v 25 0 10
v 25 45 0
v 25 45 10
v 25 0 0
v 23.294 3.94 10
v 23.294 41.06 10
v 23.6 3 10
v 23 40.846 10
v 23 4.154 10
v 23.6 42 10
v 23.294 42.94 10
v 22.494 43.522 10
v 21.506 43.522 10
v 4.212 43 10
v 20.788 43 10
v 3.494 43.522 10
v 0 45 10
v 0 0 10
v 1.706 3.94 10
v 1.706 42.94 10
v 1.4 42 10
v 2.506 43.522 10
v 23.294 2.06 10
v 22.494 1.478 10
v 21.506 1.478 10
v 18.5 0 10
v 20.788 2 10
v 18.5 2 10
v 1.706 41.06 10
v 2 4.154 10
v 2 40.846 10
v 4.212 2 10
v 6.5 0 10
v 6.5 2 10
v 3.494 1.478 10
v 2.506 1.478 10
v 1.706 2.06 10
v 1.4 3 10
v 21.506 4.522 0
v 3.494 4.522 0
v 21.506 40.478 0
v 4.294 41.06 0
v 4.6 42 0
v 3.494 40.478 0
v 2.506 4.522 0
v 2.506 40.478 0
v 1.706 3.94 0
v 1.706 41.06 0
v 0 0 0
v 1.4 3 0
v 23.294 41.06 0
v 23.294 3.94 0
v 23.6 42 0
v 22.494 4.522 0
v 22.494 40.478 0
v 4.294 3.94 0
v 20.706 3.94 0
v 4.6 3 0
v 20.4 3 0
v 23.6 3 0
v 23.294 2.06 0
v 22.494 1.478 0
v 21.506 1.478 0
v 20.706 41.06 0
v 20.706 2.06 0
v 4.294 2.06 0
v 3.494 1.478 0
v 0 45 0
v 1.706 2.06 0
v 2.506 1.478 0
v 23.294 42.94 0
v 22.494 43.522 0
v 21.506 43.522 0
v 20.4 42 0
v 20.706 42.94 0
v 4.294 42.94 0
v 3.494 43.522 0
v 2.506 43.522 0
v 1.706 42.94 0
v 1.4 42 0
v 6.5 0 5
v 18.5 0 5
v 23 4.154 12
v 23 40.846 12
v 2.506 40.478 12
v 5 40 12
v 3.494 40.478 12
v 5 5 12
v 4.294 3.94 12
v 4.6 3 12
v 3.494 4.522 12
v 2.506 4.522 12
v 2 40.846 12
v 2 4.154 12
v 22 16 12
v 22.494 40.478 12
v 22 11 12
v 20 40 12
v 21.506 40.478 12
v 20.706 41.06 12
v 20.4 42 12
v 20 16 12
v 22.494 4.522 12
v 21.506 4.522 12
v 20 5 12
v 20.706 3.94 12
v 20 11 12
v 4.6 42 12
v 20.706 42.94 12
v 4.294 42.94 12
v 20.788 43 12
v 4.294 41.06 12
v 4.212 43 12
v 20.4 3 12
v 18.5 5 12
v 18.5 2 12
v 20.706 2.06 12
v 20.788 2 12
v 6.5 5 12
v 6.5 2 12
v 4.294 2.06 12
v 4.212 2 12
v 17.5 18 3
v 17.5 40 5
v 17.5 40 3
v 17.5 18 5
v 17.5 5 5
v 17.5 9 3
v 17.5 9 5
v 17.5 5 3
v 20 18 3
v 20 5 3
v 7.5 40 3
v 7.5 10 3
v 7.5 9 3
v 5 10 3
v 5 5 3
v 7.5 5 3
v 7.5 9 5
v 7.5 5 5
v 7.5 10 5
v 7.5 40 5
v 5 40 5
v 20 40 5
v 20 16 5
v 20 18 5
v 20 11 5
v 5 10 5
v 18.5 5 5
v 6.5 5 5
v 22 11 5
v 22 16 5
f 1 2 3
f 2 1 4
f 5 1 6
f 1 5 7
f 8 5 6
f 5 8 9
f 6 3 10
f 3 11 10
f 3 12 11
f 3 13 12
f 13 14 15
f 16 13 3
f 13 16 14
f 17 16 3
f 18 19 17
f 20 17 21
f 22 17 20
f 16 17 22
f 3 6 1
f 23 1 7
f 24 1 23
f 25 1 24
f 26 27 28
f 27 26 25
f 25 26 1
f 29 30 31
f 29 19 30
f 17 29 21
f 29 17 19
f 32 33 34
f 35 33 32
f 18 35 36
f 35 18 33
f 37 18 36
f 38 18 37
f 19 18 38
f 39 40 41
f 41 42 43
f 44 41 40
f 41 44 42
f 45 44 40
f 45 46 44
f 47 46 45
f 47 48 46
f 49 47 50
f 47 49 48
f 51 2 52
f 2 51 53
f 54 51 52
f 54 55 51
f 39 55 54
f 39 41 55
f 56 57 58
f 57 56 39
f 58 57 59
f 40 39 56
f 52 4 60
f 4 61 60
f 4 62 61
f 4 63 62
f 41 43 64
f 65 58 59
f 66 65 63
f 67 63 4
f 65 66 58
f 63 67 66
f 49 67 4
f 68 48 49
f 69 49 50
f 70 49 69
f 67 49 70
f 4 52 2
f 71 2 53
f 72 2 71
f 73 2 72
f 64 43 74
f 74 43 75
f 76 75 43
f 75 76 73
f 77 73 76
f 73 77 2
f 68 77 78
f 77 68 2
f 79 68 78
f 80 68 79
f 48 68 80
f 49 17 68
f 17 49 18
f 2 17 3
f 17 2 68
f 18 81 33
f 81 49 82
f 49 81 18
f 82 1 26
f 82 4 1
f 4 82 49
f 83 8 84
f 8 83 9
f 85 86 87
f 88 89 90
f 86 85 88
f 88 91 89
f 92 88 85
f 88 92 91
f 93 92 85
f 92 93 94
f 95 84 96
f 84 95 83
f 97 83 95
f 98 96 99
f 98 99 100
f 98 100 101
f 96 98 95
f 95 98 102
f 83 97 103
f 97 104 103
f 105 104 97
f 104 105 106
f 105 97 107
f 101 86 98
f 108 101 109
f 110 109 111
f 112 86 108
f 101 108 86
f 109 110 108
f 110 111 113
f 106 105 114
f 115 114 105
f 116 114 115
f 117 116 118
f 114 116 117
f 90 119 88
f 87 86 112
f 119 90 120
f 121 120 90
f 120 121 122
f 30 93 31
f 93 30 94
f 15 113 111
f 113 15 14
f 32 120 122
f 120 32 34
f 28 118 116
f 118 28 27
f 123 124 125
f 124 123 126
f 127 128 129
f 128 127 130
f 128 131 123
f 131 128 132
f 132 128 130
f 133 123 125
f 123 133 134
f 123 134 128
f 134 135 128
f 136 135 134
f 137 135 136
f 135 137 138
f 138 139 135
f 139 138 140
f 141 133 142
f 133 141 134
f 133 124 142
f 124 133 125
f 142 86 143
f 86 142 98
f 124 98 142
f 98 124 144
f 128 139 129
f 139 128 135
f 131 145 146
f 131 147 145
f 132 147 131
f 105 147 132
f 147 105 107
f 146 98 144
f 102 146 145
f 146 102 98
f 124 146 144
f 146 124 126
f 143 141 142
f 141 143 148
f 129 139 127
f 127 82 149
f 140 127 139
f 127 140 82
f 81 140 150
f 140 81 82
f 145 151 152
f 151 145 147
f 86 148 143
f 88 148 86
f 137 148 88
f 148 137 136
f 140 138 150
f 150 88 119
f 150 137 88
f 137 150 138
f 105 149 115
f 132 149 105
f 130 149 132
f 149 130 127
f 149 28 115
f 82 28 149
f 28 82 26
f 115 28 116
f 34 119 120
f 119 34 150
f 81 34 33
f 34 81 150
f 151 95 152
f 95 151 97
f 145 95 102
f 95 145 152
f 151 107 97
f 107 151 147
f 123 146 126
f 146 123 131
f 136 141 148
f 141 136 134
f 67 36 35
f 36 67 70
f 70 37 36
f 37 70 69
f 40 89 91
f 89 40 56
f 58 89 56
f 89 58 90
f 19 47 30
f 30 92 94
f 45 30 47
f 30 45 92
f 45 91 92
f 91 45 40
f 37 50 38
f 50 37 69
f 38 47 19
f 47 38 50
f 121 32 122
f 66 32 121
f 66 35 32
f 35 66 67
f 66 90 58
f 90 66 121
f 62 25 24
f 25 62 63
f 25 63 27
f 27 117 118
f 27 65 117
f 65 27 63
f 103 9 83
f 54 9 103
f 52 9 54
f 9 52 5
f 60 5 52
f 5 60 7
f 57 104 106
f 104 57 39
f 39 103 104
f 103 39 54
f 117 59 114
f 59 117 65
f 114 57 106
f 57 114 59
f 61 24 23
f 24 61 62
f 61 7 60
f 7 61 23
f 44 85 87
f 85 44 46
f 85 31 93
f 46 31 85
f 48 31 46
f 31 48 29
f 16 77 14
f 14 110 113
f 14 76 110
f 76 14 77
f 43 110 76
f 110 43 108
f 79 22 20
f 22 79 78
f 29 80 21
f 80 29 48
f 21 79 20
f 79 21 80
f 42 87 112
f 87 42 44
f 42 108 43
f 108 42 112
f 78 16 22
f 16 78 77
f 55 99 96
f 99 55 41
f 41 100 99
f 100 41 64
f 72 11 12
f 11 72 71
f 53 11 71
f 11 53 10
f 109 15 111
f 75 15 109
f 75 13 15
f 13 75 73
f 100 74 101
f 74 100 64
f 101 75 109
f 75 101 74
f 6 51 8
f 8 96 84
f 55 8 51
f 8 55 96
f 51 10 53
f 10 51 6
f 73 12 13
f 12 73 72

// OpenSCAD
$fn = 10;

width = 25;
length = 45;
lip = 2;
height = 10;
wall = 5;
hole_d = 3.2;
hole_h = height + lip;

difference() {
    union() {
        cube([width, length, height], false);
        translate([lip, lip, height])
            cube([width - 2 * lip , length - 2 * lip, lip], false);
    }
    translate([wall + 2.5, wall + 4, 3])
        cube([10, 31, height], false);
    translate([wall, wall, 3 + 2])
        cube([width - 2 * wall, length - 2 * wall, height], false);
    // USB
    translate([wall + 1.5, 0, 3 + 2])
        cube([12, wall, 5 + lip], false);
    // reset
    translate([width - wall, 11, 3 + 2])
        cube([2, 5, height], false);
    // pins
    translate([wall + 2.5 + 10, wall, 3])
        cube([2.5, 13, height], false);
    translate([wall, wall, 3])
        cube([2.5, 5, height], false);
    // holes
    translate([3, 3, 0])
        cylinder(hole_h, hole_d / 2, hole_d / 2, false);
    translate([width - 3, 3, 0])
        cylinder(hole_h, hole_d / 2, hole_d / 2, false);
    translate([3, length - 3, 0])
        cylinder(hole_h, hole_d / 2, hole_d / 2, false);
    translate([width - 3, length - 3, 0])
        cylinder(hole_h, hole_d / 2, hole_d / 2, false);
}
